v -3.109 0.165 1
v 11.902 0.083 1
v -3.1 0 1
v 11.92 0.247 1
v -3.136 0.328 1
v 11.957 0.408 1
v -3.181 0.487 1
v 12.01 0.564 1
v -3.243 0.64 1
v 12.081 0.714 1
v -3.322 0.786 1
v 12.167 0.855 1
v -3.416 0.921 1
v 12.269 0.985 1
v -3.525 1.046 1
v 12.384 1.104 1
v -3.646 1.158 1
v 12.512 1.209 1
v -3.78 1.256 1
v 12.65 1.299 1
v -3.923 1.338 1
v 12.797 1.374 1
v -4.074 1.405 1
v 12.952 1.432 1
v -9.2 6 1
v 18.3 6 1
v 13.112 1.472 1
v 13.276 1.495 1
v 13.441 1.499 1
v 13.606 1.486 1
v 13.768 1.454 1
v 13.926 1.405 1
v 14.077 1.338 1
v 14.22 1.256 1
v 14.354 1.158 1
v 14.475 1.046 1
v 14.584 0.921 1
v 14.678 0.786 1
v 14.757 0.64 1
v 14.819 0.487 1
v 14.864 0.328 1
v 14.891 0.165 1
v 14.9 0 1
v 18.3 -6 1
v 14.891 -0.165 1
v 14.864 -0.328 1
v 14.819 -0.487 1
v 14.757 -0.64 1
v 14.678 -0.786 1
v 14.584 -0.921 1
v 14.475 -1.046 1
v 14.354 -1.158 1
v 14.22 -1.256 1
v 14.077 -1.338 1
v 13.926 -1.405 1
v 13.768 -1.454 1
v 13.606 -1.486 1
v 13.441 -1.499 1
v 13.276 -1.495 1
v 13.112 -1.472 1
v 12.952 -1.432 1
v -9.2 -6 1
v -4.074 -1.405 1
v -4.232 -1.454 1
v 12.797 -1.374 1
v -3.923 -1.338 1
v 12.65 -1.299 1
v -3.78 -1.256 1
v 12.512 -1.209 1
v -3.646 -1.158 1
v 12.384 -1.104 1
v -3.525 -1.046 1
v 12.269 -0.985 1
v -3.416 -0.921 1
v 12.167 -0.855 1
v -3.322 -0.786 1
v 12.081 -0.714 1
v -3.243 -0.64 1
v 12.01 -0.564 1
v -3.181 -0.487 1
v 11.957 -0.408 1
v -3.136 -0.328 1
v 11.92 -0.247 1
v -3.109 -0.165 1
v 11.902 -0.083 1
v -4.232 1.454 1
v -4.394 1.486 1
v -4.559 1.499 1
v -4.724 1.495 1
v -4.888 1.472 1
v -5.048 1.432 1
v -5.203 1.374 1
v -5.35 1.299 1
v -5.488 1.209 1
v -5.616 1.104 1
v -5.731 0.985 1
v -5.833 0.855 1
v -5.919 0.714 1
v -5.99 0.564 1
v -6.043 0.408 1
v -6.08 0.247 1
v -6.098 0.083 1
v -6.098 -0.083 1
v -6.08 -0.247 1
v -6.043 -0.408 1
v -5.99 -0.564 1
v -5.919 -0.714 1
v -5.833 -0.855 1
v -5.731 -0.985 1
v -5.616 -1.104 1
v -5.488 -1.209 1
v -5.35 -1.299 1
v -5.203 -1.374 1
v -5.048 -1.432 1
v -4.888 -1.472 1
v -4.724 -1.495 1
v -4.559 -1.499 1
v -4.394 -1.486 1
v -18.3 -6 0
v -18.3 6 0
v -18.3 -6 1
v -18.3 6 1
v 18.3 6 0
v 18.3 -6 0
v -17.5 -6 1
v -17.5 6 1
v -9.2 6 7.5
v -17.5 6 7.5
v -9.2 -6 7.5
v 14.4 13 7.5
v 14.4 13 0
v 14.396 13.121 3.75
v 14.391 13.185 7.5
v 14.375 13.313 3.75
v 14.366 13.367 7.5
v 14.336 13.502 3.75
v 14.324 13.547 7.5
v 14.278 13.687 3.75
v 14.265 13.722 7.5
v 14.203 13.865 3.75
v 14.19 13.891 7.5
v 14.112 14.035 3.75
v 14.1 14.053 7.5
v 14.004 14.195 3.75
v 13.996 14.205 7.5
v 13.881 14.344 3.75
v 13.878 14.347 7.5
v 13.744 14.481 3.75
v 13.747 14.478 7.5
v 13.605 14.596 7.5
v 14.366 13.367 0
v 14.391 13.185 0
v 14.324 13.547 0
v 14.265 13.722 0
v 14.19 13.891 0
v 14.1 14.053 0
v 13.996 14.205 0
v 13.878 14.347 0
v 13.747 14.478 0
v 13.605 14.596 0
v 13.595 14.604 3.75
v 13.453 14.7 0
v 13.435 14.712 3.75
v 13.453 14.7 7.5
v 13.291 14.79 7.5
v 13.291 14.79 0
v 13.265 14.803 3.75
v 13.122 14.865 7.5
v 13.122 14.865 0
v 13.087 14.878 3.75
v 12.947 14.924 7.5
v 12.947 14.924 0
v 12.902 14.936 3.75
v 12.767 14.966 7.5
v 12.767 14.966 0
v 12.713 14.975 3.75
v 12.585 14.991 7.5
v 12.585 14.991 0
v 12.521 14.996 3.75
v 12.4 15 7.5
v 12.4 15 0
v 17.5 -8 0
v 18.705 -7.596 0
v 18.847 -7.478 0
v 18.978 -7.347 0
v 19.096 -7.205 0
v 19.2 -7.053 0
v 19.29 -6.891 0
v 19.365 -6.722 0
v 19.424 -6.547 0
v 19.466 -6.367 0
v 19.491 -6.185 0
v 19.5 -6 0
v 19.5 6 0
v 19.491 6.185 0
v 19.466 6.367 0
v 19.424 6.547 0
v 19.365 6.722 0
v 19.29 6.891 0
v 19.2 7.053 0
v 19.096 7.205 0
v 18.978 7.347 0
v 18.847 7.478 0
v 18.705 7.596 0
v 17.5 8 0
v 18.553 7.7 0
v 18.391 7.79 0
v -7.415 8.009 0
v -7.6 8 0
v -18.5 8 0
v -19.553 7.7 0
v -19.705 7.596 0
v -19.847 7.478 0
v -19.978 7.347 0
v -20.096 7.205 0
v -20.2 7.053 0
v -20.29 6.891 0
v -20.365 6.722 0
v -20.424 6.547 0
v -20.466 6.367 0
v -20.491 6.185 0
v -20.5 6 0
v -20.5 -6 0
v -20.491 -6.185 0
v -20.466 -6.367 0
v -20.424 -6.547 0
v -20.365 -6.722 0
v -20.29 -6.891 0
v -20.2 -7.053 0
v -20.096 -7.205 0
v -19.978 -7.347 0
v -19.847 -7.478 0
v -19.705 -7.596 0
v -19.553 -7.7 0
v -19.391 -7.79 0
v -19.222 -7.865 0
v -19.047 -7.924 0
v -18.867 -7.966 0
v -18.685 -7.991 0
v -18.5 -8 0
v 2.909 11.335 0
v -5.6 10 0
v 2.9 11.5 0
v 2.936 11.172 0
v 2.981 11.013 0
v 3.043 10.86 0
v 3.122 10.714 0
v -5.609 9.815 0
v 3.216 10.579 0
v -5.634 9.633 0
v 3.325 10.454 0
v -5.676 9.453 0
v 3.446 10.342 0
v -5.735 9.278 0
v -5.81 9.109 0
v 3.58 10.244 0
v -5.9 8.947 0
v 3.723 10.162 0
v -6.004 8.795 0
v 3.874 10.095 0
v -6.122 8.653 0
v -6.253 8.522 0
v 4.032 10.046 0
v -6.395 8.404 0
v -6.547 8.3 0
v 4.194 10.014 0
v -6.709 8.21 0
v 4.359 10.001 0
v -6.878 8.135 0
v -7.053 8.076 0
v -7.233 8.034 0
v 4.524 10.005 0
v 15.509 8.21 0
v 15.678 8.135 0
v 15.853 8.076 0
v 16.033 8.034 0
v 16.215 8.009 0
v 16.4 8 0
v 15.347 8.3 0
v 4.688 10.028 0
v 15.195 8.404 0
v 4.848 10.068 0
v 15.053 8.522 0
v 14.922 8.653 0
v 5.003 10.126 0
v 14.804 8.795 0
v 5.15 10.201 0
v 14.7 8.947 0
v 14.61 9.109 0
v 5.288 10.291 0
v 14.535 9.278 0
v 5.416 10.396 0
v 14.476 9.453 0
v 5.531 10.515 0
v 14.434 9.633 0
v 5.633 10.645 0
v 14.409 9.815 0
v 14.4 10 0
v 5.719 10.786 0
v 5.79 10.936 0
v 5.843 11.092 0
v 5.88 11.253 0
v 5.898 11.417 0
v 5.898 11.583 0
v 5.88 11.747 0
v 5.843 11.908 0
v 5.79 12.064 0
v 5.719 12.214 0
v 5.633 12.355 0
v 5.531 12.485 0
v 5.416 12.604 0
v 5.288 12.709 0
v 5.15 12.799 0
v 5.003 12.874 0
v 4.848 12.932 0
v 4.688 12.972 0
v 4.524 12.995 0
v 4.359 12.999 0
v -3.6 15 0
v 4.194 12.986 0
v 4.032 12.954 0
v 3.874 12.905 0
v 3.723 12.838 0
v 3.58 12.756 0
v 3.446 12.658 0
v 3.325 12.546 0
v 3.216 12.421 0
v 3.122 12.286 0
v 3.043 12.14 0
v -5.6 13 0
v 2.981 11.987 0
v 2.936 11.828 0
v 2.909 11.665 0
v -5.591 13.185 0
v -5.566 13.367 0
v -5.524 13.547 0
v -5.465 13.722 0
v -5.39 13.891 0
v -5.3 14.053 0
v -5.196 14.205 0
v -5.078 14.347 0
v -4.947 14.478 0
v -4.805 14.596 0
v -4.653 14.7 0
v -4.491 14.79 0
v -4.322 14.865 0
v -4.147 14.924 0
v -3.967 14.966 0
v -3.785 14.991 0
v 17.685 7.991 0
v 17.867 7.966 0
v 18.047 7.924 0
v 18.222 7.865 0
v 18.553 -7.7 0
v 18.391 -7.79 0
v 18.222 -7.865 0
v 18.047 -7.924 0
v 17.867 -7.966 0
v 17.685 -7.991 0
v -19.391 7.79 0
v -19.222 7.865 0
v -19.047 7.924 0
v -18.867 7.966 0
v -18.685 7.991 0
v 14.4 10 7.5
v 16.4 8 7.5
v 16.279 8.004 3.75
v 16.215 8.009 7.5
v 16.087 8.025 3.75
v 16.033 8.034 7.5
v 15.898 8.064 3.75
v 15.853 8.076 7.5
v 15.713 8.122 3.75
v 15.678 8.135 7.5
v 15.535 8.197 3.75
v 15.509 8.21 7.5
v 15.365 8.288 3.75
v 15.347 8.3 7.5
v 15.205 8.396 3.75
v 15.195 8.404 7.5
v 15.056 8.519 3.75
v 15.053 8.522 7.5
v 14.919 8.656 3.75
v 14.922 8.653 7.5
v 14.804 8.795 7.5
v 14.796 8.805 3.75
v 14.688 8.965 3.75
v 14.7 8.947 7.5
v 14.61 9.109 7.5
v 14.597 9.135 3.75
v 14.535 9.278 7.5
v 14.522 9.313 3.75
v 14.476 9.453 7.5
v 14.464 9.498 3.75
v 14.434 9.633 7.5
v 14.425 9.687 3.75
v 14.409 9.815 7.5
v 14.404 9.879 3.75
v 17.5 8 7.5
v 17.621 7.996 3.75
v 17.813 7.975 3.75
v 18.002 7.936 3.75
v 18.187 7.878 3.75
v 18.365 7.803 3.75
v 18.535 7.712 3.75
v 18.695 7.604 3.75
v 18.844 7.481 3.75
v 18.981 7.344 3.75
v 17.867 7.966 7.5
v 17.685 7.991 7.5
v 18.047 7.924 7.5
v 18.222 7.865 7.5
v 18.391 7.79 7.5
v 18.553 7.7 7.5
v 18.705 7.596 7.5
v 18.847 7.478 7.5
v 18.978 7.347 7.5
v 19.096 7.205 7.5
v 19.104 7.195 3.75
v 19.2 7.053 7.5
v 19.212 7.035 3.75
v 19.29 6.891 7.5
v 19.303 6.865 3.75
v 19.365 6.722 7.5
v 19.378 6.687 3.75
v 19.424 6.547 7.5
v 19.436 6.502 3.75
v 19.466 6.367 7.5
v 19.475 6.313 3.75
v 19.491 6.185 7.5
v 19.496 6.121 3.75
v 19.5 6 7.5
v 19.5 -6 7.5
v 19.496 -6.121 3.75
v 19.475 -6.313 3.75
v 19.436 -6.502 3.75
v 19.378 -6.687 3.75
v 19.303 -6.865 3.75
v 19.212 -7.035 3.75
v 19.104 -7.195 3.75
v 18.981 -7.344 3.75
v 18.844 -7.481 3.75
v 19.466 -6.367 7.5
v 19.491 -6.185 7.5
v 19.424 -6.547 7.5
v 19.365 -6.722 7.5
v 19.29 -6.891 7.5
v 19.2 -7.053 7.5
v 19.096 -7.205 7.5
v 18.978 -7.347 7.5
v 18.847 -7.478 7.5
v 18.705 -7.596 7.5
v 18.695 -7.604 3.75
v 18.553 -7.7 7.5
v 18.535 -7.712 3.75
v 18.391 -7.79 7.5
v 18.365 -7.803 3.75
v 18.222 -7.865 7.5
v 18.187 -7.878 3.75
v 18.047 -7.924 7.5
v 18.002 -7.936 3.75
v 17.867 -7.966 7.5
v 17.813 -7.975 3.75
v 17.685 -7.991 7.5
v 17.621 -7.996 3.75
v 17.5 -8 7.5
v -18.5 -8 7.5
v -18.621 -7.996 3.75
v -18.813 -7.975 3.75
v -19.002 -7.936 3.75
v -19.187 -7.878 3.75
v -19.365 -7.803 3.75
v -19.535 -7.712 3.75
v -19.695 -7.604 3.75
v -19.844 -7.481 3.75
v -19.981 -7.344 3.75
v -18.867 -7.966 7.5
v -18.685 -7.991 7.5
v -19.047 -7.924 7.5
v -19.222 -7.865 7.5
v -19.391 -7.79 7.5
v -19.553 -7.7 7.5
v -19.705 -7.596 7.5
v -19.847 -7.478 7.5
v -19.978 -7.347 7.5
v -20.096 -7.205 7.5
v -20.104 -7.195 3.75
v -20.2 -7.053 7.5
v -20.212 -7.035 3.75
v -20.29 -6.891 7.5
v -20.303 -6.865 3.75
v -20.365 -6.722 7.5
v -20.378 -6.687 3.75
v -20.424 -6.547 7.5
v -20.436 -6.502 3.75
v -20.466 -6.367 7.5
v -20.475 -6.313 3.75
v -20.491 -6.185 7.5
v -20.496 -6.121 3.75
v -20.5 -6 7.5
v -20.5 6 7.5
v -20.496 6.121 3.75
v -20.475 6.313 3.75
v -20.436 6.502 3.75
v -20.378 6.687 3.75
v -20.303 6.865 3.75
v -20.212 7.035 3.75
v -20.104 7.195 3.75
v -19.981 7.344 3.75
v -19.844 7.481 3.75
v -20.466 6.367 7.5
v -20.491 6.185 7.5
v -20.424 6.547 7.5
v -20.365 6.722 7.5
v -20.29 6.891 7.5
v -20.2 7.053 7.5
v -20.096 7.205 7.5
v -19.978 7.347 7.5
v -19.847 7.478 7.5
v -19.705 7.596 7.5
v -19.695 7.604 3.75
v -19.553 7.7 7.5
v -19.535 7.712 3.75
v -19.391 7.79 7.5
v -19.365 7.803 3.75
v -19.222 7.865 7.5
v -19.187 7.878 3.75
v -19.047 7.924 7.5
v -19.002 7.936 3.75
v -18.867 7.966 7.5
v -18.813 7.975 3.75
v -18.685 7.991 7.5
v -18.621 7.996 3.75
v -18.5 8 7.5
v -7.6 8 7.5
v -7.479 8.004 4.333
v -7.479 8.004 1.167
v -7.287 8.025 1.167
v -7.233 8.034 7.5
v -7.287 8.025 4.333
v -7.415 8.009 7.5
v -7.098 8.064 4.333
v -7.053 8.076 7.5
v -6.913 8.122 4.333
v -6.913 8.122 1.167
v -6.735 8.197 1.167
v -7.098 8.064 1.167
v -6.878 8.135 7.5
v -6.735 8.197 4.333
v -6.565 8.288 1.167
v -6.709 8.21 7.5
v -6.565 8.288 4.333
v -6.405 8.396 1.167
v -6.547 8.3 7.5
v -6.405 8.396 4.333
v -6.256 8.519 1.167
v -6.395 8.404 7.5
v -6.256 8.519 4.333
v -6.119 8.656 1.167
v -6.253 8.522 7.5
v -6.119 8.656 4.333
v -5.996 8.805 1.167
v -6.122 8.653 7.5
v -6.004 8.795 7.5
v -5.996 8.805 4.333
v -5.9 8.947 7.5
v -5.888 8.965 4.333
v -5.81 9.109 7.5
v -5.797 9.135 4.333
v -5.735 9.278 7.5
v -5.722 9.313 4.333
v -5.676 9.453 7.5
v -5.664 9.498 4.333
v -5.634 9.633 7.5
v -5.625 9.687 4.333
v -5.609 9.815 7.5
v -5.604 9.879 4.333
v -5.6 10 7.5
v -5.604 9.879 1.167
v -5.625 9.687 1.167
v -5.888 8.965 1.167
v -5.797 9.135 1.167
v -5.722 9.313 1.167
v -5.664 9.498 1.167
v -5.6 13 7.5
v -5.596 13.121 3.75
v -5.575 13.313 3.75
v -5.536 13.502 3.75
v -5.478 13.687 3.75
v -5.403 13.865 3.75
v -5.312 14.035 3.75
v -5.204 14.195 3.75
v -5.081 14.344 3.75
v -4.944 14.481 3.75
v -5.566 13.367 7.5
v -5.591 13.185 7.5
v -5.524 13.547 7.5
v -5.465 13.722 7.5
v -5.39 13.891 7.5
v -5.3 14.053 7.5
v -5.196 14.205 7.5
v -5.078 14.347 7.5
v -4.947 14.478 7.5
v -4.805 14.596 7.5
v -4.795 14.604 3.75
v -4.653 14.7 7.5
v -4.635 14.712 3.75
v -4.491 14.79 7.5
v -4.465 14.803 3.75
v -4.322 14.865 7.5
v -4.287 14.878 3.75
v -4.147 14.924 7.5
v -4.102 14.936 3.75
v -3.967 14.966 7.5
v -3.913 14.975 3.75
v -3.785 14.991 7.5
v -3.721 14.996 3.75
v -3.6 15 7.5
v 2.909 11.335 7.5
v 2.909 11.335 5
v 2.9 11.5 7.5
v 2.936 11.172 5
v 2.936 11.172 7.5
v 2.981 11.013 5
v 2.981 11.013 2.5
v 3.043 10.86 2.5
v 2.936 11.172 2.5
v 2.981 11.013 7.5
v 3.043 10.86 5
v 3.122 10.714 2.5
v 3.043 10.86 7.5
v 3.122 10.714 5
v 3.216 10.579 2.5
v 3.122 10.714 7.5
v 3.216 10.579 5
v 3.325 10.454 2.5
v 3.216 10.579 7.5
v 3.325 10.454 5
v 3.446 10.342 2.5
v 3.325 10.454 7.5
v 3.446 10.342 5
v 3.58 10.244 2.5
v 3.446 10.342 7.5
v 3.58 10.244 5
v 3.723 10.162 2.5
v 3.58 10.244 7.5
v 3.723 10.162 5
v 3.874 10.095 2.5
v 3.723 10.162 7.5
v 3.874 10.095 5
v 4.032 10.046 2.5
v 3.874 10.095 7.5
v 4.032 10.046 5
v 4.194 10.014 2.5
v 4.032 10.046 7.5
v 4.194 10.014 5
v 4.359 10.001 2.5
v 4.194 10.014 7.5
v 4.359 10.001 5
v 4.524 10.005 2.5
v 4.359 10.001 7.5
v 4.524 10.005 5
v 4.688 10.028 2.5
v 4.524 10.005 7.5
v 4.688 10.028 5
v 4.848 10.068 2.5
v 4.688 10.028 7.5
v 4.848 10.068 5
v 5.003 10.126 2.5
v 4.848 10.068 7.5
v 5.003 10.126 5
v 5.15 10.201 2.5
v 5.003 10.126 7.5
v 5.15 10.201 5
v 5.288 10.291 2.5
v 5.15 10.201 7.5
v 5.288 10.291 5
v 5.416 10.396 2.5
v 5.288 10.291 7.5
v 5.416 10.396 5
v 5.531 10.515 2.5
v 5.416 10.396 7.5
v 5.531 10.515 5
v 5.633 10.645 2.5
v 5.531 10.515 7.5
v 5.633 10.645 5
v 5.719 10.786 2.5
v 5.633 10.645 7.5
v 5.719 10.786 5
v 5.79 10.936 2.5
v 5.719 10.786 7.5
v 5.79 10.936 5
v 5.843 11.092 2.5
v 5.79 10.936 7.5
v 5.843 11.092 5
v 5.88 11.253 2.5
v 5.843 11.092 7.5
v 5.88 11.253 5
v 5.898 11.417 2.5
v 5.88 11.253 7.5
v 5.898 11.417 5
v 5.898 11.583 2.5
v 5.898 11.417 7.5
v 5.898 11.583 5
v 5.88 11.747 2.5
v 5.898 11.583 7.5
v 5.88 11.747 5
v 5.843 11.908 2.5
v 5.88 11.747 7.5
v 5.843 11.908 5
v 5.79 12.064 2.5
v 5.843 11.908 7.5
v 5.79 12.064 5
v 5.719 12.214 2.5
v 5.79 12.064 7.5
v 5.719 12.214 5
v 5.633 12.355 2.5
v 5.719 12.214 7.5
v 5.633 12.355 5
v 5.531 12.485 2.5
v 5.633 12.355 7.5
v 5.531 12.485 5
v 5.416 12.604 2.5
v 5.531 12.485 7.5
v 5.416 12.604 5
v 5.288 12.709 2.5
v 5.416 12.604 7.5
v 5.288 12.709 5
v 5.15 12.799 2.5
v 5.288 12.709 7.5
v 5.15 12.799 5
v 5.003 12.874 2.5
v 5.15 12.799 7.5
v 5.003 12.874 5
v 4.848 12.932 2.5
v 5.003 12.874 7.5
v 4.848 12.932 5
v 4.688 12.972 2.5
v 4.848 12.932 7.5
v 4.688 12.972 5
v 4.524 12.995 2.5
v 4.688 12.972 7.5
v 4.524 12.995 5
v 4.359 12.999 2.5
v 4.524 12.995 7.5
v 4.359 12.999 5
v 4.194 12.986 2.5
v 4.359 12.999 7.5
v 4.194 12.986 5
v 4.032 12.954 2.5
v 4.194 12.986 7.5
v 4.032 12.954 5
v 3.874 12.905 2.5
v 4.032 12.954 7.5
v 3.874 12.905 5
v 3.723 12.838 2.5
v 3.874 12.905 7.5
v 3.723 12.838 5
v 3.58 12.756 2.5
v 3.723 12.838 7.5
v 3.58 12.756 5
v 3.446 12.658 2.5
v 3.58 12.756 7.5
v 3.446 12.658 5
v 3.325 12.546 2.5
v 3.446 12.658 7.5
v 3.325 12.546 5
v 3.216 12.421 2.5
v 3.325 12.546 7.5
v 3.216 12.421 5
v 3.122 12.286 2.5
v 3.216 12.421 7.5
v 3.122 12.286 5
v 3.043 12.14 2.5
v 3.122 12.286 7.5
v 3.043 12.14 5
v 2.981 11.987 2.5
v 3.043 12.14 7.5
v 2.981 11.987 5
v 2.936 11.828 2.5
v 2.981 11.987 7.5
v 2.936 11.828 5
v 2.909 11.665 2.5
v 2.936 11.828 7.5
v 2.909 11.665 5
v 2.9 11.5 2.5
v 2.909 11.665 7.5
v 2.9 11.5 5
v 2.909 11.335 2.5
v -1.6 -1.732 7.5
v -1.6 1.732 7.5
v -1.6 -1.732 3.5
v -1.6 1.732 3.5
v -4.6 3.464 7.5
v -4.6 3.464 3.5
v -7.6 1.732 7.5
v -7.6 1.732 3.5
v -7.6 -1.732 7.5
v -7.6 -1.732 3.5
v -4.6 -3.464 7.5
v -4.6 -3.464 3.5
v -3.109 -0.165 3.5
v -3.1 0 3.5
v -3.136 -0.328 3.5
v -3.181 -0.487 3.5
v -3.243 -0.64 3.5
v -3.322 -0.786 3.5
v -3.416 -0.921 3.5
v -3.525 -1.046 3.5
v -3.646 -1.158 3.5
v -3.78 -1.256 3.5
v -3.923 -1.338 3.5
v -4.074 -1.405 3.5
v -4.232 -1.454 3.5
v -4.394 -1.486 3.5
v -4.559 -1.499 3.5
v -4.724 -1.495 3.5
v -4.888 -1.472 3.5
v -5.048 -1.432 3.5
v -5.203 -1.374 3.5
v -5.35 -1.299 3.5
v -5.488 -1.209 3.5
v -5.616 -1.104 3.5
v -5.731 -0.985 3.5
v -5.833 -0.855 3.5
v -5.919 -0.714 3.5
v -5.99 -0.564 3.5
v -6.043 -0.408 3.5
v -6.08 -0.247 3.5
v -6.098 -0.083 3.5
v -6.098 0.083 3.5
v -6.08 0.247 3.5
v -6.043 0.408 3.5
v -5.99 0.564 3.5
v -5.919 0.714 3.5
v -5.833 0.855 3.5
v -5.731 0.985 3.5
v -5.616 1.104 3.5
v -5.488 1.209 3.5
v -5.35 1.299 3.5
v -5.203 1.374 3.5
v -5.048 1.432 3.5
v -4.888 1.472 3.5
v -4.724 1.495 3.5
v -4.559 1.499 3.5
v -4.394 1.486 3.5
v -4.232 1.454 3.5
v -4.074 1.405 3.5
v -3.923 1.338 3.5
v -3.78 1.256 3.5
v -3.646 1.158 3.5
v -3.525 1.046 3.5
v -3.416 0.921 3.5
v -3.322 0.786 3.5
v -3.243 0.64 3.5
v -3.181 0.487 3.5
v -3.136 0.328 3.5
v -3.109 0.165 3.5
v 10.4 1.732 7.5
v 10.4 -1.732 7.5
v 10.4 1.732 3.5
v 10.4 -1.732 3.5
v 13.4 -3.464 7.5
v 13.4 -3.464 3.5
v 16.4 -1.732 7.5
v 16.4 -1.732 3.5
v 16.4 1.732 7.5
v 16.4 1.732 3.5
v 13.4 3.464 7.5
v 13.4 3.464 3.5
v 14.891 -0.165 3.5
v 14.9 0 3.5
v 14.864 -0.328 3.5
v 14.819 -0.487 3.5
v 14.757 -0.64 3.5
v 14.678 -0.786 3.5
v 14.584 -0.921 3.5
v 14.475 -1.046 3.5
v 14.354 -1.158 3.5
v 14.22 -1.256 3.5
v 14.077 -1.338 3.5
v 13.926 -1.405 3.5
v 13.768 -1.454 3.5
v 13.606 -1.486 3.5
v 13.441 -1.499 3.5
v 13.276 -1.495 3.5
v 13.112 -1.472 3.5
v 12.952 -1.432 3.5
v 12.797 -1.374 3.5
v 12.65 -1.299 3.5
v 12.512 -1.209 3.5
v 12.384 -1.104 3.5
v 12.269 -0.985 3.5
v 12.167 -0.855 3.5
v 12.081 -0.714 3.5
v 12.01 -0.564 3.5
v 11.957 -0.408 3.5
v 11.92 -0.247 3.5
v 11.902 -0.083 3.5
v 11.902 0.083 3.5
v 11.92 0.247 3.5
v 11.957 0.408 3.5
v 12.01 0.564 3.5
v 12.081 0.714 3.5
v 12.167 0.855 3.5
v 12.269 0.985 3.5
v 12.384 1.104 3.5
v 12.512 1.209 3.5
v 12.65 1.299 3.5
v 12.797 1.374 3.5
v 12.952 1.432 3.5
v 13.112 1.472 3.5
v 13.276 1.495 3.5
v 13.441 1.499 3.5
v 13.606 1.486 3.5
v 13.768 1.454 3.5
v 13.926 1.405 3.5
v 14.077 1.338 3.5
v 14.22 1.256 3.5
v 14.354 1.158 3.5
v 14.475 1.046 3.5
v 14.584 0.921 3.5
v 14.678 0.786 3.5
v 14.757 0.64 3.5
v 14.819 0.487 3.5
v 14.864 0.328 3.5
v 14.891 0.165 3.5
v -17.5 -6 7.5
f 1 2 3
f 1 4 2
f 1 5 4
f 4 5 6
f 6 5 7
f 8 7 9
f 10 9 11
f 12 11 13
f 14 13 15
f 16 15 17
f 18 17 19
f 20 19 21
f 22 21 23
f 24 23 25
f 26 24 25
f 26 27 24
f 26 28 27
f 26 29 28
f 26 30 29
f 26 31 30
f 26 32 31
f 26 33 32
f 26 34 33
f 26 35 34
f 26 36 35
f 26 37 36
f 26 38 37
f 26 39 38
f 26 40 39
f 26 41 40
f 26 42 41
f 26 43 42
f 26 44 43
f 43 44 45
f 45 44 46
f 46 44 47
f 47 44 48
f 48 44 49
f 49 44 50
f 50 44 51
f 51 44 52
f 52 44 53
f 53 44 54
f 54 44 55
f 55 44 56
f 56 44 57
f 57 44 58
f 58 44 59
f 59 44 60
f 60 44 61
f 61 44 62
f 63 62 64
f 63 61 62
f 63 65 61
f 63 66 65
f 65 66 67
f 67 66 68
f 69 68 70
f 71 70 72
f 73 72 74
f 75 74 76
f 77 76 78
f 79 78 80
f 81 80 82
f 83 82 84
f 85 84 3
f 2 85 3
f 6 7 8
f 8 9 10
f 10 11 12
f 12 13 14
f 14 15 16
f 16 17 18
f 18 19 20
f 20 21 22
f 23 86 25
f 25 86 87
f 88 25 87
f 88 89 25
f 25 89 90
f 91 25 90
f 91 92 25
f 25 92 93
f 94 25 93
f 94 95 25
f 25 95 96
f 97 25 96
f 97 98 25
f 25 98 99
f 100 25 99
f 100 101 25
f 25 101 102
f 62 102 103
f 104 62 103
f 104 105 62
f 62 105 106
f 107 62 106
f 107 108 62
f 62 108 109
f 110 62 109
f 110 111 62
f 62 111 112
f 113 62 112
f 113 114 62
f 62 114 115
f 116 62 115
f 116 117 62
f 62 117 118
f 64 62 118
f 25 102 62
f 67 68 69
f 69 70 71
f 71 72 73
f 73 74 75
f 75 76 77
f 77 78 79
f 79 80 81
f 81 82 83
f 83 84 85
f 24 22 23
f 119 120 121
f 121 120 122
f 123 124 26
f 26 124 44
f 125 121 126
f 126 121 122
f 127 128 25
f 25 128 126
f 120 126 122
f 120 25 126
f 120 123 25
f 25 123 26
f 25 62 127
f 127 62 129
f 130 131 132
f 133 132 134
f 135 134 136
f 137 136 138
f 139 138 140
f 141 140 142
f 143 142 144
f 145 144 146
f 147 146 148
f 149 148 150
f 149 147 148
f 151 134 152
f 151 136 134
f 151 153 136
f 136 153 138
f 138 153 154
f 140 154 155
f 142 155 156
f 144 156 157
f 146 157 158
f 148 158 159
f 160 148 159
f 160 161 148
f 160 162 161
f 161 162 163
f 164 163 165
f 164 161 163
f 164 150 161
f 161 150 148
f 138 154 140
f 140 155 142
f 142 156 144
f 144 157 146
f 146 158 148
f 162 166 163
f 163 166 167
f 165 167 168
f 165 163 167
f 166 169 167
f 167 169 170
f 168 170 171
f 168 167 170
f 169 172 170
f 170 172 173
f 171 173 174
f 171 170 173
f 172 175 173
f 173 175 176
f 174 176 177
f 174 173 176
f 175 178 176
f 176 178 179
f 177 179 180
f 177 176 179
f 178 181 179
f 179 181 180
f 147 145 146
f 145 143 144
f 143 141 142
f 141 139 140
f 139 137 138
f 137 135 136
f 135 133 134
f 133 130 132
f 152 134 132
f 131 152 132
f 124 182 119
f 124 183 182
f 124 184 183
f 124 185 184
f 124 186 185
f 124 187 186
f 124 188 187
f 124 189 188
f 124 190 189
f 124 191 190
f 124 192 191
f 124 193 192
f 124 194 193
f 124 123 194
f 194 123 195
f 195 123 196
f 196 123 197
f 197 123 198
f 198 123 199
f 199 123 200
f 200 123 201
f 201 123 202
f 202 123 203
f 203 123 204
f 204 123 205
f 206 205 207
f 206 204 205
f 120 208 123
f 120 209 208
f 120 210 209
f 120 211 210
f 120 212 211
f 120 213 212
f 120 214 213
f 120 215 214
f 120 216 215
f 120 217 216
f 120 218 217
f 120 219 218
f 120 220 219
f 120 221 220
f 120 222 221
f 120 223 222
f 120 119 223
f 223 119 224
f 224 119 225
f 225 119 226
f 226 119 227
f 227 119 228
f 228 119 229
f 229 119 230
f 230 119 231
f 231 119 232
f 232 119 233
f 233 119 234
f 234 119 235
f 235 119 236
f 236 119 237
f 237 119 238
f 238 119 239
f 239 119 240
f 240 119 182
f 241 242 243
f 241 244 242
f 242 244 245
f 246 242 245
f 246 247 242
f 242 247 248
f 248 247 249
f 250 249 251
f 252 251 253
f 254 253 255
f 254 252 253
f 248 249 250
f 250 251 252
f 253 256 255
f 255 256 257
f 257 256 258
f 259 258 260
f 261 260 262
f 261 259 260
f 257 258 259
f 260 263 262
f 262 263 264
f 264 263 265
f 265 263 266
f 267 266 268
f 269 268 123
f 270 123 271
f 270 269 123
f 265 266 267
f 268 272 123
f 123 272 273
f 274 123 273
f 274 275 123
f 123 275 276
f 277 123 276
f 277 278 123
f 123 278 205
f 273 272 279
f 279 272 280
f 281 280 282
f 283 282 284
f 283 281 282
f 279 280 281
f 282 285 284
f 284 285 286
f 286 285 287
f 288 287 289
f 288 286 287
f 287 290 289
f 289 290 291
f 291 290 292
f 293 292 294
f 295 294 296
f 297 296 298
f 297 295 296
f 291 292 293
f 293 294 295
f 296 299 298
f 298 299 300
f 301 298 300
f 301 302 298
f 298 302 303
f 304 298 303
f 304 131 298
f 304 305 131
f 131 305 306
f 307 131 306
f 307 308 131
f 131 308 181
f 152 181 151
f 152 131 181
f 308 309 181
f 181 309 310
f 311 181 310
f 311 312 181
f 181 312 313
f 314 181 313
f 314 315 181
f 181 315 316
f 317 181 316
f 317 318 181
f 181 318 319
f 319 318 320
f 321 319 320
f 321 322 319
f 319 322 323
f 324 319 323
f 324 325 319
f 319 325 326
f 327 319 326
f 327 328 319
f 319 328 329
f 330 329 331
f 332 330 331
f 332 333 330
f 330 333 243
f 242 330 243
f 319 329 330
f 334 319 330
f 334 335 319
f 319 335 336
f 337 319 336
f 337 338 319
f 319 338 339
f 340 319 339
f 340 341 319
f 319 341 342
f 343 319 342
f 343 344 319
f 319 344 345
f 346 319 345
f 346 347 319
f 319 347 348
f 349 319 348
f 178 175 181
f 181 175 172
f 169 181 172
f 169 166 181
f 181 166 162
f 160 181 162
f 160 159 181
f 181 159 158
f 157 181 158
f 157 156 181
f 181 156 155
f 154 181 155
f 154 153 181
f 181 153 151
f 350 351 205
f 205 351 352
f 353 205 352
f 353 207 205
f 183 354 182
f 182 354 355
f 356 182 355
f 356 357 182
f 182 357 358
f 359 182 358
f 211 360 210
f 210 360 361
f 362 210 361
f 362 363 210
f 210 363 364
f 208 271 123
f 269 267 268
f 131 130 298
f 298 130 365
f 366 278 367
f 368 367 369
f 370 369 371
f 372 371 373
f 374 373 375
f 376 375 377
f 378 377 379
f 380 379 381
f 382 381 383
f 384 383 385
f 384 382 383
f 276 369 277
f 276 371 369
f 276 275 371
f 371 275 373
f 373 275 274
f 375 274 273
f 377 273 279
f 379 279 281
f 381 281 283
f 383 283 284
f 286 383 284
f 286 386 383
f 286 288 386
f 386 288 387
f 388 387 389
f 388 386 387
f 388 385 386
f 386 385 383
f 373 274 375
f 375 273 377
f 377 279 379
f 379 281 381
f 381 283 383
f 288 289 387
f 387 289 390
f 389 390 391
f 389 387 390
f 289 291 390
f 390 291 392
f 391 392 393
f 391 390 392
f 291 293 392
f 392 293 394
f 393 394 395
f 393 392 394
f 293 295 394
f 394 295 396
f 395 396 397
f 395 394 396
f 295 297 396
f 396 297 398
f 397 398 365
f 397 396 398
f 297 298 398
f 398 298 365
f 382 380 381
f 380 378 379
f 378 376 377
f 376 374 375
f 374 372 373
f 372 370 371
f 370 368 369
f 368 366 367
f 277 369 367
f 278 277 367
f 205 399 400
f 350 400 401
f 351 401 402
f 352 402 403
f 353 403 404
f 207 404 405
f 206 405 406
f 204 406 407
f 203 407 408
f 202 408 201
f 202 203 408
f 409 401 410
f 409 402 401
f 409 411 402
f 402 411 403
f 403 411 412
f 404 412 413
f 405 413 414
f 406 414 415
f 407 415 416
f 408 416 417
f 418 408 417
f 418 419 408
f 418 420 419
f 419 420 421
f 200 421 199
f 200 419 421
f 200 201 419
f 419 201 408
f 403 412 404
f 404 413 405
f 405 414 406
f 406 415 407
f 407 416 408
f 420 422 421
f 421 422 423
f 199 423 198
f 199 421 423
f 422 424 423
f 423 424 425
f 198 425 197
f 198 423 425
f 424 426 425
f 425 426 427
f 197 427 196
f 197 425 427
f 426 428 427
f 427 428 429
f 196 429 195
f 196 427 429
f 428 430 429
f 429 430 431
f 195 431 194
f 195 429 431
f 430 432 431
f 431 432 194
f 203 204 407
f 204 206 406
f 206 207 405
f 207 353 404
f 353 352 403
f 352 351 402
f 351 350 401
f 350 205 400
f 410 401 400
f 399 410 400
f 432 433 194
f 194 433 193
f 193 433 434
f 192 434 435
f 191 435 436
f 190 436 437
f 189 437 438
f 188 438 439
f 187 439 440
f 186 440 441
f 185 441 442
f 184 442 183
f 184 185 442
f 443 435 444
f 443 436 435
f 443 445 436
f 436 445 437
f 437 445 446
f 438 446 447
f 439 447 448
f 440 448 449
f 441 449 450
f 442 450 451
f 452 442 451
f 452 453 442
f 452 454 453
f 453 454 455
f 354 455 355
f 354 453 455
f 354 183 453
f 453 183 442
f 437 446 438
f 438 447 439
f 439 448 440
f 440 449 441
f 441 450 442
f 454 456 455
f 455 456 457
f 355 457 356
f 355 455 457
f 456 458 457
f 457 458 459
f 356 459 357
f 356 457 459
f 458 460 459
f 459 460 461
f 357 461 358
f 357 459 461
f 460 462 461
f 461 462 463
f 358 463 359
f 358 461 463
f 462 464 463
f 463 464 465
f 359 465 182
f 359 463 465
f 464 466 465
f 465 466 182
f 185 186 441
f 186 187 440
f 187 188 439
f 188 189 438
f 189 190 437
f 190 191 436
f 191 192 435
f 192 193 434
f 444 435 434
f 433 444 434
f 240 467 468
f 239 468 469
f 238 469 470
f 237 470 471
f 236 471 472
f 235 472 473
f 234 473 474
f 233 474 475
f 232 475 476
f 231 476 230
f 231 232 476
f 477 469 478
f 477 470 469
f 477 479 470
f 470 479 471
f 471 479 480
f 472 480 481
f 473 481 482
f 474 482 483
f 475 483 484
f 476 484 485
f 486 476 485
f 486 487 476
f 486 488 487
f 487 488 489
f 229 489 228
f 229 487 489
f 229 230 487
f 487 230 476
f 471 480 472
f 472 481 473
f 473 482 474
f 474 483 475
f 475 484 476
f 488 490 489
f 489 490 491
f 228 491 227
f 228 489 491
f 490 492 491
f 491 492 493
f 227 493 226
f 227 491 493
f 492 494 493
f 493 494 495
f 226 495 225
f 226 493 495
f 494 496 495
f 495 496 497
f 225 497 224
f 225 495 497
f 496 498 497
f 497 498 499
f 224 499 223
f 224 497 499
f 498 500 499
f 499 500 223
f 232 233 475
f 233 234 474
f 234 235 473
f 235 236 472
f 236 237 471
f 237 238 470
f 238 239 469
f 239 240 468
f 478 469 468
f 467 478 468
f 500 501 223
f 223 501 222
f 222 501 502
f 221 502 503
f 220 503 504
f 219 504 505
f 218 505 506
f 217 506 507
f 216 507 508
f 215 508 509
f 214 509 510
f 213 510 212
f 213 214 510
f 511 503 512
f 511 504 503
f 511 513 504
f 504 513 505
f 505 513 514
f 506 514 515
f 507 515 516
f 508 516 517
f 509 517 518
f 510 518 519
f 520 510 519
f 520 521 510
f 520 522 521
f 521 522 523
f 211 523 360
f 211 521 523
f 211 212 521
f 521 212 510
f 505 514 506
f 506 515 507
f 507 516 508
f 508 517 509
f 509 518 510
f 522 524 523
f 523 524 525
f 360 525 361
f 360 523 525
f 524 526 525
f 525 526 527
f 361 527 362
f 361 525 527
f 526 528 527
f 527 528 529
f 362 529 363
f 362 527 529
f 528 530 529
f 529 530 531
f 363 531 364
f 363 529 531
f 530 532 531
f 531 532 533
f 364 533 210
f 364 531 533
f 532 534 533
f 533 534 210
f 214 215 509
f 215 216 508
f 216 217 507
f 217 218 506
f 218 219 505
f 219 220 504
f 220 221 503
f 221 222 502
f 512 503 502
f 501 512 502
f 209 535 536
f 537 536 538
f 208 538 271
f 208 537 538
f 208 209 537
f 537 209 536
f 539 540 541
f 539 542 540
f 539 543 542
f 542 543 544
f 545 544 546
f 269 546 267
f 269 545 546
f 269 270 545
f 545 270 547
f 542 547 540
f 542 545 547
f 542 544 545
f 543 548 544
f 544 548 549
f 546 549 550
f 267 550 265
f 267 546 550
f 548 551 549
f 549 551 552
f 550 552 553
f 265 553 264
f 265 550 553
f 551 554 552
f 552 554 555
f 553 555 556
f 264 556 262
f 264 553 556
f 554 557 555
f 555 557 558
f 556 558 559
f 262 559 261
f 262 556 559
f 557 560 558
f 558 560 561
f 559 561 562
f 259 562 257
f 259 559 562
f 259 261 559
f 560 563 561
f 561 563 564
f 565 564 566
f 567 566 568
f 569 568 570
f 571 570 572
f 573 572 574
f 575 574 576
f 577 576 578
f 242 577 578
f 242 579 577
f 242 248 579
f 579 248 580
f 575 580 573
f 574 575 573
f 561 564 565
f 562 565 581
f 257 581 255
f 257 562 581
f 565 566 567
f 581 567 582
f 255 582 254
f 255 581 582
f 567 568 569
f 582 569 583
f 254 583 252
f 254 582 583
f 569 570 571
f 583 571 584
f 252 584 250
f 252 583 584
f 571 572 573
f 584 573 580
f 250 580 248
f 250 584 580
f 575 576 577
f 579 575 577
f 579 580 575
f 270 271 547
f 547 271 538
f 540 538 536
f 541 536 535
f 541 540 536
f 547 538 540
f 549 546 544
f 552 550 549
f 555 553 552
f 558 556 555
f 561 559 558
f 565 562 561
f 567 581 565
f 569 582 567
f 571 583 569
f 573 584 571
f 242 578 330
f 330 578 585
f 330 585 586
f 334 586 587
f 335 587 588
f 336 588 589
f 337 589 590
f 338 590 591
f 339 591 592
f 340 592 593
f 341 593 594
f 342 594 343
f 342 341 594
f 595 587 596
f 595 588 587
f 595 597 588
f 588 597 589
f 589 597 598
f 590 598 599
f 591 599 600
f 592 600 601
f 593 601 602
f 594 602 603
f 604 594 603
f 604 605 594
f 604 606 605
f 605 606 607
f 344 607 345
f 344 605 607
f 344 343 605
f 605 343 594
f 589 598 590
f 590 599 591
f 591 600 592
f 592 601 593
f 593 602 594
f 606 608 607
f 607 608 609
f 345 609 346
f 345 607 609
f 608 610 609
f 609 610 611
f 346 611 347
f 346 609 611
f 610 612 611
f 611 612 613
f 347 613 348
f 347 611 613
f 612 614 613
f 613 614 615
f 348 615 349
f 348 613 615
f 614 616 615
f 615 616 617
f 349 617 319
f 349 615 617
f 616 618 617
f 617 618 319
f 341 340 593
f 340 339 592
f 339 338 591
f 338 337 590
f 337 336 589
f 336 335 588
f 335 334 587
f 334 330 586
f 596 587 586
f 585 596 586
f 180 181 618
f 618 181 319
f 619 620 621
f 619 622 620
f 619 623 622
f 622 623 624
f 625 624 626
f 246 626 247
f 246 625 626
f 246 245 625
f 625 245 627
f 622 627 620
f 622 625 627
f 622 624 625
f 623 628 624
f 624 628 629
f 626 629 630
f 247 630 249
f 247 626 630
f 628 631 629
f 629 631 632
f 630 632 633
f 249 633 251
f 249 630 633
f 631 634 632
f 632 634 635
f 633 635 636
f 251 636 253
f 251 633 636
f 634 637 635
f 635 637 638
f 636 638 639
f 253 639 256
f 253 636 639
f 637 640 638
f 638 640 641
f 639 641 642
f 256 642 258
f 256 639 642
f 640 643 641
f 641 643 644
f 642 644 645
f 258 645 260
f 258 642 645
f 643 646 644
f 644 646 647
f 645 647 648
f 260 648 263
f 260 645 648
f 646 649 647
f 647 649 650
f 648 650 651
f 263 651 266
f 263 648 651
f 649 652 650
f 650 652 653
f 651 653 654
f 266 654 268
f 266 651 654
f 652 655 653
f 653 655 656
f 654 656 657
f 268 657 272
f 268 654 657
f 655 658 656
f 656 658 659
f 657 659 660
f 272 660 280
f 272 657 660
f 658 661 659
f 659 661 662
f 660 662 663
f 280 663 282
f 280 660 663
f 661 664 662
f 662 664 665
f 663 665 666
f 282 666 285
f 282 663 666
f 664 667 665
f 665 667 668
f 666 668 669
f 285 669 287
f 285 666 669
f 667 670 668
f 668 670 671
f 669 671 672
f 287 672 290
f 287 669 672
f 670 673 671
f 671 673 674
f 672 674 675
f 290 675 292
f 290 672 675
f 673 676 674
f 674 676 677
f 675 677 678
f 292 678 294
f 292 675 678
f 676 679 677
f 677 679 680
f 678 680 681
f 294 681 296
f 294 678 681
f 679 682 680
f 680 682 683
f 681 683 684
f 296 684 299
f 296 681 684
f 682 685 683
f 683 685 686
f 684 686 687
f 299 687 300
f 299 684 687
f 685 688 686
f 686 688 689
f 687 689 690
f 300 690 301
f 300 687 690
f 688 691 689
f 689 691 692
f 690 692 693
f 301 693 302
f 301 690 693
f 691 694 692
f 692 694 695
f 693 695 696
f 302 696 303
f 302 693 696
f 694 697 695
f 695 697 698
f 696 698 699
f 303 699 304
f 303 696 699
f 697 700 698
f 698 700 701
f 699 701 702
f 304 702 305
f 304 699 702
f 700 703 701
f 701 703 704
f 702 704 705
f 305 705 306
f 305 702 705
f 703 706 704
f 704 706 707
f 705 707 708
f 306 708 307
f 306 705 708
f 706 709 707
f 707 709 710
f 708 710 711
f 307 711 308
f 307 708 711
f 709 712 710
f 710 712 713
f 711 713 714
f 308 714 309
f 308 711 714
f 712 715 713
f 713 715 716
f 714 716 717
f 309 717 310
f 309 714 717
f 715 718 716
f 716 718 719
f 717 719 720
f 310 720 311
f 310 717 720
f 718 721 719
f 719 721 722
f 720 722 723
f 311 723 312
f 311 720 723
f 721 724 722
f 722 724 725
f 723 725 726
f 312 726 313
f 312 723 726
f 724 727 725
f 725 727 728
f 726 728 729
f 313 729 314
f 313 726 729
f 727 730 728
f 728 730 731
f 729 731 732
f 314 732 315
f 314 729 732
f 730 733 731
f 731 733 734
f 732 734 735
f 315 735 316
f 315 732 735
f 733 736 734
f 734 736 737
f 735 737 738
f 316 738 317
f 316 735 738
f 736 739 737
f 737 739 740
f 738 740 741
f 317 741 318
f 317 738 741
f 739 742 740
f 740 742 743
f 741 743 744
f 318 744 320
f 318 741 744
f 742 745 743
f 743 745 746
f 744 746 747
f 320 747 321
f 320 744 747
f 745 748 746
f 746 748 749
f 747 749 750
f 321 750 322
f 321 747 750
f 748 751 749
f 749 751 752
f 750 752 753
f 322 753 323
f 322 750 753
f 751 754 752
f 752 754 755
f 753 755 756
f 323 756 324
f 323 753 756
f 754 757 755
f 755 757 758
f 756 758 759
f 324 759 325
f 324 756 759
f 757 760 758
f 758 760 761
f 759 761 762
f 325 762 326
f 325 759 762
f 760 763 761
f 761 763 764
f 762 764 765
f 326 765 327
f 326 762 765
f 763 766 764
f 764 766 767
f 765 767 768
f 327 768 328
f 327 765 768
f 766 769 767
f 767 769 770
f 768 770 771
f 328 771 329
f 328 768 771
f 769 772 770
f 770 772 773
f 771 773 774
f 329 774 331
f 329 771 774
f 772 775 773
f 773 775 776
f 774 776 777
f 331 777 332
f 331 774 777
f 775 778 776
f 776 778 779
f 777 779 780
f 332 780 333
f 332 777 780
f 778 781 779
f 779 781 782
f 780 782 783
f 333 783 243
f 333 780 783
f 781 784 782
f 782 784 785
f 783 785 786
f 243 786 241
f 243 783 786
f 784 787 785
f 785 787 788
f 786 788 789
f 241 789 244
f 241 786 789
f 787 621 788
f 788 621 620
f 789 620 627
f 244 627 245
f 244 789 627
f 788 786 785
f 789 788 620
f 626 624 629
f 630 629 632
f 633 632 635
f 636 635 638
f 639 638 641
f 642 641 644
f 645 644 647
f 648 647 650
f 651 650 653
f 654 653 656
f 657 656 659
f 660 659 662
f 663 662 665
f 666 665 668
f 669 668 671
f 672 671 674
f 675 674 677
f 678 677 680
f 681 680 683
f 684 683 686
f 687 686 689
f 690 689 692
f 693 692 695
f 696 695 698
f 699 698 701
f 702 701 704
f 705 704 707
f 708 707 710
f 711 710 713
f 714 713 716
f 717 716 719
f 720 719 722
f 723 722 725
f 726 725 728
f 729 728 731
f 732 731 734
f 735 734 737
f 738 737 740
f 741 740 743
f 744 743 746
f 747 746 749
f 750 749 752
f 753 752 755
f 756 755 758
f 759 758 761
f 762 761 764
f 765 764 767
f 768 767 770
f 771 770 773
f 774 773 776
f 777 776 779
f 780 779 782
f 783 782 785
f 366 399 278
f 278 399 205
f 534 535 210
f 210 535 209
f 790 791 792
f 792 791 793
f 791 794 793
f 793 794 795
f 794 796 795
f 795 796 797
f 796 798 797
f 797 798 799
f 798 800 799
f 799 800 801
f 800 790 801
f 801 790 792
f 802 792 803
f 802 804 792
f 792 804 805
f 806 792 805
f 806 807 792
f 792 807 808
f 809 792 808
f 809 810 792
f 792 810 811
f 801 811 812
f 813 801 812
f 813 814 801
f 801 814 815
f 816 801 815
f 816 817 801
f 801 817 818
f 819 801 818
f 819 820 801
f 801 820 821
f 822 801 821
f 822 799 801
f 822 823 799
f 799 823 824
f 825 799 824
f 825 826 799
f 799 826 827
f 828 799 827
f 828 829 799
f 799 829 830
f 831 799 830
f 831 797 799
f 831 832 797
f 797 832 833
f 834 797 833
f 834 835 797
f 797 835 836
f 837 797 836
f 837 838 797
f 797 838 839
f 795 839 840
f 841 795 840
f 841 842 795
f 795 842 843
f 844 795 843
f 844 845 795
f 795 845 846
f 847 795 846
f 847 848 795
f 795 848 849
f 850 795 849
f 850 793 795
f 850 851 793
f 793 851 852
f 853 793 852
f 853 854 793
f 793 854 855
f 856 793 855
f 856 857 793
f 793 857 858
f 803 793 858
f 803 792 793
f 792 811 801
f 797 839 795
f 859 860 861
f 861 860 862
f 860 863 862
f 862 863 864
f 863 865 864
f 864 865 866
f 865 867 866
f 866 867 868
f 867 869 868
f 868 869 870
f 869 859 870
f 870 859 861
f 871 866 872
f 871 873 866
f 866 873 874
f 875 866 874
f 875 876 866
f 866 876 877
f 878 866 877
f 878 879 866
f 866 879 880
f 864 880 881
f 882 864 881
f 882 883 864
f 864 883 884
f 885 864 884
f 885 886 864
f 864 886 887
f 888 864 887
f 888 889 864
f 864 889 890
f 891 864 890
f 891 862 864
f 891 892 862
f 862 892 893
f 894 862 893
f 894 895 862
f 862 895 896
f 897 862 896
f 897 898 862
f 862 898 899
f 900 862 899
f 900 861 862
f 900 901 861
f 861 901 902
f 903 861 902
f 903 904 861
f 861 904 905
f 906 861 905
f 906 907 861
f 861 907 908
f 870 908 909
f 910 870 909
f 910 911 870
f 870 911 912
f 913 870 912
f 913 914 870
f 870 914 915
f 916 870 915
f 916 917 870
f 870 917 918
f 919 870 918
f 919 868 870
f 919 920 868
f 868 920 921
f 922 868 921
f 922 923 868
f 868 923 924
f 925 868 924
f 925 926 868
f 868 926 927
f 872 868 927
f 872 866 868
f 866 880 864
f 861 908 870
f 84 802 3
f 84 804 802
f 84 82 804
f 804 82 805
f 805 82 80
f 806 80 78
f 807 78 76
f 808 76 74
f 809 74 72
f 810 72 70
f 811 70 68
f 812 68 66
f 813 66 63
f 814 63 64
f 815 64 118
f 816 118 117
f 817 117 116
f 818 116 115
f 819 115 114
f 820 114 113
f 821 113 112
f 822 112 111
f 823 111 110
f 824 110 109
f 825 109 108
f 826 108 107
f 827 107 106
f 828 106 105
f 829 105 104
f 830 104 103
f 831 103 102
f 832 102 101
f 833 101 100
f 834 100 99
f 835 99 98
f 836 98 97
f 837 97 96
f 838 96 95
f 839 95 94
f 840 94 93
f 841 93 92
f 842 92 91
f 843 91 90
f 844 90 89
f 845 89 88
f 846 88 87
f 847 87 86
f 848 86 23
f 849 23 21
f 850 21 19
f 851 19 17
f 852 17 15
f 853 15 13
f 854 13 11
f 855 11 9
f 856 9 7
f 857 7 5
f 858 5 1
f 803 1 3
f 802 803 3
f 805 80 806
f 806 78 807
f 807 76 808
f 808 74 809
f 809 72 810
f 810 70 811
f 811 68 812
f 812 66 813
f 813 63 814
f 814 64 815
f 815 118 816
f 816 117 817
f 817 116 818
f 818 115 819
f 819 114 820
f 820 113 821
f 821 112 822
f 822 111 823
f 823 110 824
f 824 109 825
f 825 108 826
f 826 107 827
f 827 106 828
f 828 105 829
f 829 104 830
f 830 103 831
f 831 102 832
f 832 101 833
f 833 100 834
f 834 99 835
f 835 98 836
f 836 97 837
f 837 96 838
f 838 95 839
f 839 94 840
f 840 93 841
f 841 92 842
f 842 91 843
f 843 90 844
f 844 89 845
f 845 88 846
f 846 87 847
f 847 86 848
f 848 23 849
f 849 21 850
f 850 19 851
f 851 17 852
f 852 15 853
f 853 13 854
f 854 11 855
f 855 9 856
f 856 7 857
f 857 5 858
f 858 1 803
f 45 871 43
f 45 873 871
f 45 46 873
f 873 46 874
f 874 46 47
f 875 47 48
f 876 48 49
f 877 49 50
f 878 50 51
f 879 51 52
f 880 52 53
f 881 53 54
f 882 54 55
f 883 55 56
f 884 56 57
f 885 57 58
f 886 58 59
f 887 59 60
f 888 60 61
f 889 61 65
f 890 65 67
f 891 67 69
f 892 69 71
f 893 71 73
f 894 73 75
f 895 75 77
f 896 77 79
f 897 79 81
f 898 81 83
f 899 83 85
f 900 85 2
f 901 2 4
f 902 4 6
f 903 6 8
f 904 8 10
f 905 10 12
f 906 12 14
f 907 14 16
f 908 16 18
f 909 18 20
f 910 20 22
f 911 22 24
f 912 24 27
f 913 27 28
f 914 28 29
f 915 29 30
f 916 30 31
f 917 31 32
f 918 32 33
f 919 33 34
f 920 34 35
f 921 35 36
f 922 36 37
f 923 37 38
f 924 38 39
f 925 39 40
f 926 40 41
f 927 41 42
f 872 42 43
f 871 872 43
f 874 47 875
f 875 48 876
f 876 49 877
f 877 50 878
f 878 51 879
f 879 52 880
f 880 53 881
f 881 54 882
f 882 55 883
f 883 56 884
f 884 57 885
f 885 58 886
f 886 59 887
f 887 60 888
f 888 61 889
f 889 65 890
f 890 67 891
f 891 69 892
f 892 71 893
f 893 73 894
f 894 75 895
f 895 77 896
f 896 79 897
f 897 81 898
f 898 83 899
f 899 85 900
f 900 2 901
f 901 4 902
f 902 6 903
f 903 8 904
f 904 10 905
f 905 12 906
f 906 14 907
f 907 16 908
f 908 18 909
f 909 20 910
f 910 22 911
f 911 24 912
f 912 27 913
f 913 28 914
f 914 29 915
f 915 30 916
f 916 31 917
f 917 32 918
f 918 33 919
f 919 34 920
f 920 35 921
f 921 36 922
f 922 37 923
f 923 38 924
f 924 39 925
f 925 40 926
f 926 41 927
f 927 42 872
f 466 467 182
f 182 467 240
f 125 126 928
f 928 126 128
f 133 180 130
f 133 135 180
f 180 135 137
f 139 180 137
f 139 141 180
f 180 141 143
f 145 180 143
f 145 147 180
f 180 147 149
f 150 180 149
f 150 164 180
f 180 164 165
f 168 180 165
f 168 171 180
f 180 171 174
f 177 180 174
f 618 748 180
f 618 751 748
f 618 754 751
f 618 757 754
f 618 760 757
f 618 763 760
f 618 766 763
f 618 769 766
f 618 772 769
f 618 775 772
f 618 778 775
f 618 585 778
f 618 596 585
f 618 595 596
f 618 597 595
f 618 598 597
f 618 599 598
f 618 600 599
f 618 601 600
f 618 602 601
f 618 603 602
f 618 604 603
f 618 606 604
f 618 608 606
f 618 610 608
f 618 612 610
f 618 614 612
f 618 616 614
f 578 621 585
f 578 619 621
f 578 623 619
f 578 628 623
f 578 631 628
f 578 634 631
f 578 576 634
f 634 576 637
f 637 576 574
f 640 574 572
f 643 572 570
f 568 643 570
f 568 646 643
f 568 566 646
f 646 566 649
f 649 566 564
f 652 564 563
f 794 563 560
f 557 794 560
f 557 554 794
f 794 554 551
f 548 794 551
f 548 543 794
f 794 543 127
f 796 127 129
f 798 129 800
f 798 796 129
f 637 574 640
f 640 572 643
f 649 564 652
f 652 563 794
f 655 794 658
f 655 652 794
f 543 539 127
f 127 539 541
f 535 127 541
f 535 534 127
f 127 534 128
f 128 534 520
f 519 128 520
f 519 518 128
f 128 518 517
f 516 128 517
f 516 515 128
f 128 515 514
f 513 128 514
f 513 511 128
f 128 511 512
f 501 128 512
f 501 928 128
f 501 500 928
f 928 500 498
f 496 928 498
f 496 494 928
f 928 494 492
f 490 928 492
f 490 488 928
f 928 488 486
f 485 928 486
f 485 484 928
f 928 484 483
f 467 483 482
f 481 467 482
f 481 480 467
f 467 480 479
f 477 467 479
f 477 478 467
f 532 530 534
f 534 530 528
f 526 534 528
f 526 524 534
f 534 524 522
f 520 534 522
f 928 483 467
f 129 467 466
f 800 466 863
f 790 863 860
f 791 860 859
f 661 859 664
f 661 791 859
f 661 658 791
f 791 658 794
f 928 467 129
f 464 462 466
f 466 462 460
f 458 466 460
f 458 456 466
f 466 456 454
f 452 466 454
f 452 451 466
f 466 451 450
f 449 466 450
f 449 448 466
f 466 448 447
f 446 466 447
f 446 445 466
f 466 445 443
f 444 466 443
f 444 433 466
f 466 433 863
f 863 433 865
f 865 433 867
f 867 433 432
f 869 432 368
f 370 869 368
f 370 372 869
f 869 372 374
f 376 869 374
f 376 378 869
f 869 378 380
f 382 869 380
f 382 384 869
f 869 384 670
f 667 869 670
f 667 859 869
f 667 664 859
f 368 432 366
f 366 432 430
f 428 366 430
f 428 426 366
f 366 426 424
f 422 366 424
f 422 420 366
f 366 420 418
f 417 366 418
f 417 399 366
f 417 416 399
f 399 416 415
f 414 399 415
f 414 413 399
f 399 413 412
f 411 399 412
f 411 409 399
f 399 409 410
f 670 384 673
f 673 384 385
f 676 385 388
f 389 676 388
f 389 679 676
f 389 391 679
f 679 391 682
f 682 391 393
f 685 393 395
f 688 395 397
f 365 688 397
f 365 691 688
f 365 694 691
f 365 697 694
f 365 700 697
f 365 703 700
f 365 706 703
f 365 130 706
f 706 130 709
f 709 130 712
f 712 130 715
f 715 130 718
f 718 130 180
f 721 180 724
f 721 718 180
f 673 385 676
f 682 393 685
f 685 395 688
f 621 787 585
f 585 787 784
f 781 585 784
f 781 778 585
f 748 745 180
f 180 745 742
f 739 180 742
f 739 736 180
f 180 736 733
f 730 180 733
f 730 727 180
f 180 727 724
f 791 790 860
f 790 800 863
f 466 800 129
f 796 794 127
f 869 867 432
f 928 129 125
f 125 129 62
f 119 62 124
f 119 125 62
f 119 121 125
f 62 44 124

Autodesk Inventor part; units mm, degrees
ref_plane "YZ Plane" through (0, 0, 0) normal (1, 0, 0) x (0, 1, 0)
ref_plane "XZ Plane" through (0, 0, 0) normal (0, 1, 0) x (-1, 0, 0)
ref_plane "XY Plane" through (0, 0, 0) normal (0, 0, 1) x (1, 0, 0)
sketch "Sketch1" plane through (0, 0, 0) normal (0, 0, 1) x (1, 0, 0)
  line L0 (-10.2, 5) -> (-10.2, -5) projected
  line L1 (-10.2, -5) -> (16.5, -5) projected
  line L2 (16.5, -5) -> (16.5, 5) projected
  line L3 (16.5, 5) -> (-10.2, 5) projected
  circle A0 centre (13.4, 0) radius 1.5 projected
  circle A1 centre (-4.6, 0) radius 1.5 projected
  line L4 (-16.5, 5) -> (-16.5, -5) projected
  line L5 (-20.5, 8) -> (19.5, 8)
  line L6 (19.5, 8) -> (19.5, -8)
  line L7 (19.5, -8) -> (-20.5, -8)
  line L8 (-20.5, -8) -> (-20.5, 8)
  line L9 (-9.2, 8) -> (-9.2, -8)
  line L10 (-17.5, 8) -> (-17.5, -8)
  line L11 (-17.5, 6) -> (-9.2, 6)
  line L12 (-17.5, -6) -> (-9.2, -6)
  point P0 (0, 0)
  dimension "d0" = 3
  dimension "d1" = 3
  dimension "d2" = 3
  dimension "d3" = 4
  dimension "d4" = 1
  dimension "d5" = 1
  dimension "d6" = 1
  dimension "d7" = 1
extrude "Extrusion1" add sketch "Sketch1" along normal blind 7.5 contours L9 L5 L6 L7 L1 L2 L3 | L3 L2 L1 L9 | L11 L10 L5 L9 | L9 L7 L10 L12 | L10 L7 L8 L5
sketch "Sketch2" plane through (0, 0, 7.5) normal (0, 0, 1) x (1, 0, 0)
  circle A0 centre (-4.6, 0) radius 1.5 projected
  circle A1 centre (13.4, 0) radius 1.5 projected
  line L0 (-1.6, -1.7321) -> (-4.6, -3.4641)
  line L1 (-4.6, -3.4641) -> (-7.6, -1.7321)
  line L2 (-7.6, -1.7321) -> (-7.6, 1.7321)
  line L3 (-7.6, 1.7321) -> (-4.6, 3.4641)
  line L4 (-4.6, 3.4641) -> (-1.6, 1.7321)
  line L5 (-1.6, 1.7321) -> (-1.6, -1.7321)
  circle A2 centre (13.4, 0) radius 1.5 projected
  line L6 (10.4, 1.7321) -> (13.4, 3.4641)
  line L7 (13.4, 3.4641) -> (16.4, 1.7321)
  line L8 (16.4, 1.7321) -> (16.4, -1.7321)
  line L9 (16.4, -1.7321) -> (13.4, -3.4641)
  line L10 (13.4, -3.4641) -> (10.4, -1.7321)
  line L11 (10.4, -1.7321) -> (10.4, 1.7321)
  point P0 (0, 0)
  dimension "d10" = 6
  dimension "d11" = 6
extrude "Extrusion2" cut sketch "Sketch2" against normal blind 4
sketch "Sketch3" plane through (-20.5, 8, 0) normal (0, 1, 0) x (1, 0, 0)
  line L0 (40, 0) -> (0, 0) projected
  line L1 (0, -7.5) -> (40, -7.5) projected
  line L2 (34.9, 0) -> (14.9, 0)
  line L3 (14.9, 0) -> (14.9, -7.5)
  line L4 (14.9, -7.5) -> (34.9, -7.5)
  line L5 (34.9, -7.5) -> (34.9, 0)
  line L6 (13.1, 5) -> (13.1, 2) projected
  line L7 (13.1, 2) -> (36.7, 2) projected
  line L8 (36.7, 2) -> (36.7, 5) projected
  line L9 (36.7, 5) -> (30.7, 5) projected
  line L10 (30.7, 5) -> (30.7, 13) projected
  line L11 (30.7, 13) -> (26.3, 13) projected
  line L12 (26.3, 13) -> (26.3, 5) projected
  line L13 (26.3, 5) -> (23.5, 5) projected
  line L14 (23.5, 5) -> (23.5, 13) projected
  line L15 (23.5, 13) -> (19.1, 13) projected
  line L16 (19.1, 13) -> (19.1, 5) projected
  line L17 (19.1, 5) -> (13.1, 5) projected
  line L18 (24.9, 15.273) -> (24.9, -16.6011) construction
  point P0 (20.5, 0)
  dimension "d14" = 20
  dimension "d15" = 2.8
  dimension "d16" = 1.4
  dimension "d17" = 10
extrude "Extrusion3" add sketch "Sketch3" along normal blind 7 contours L5 L1 L3 L0
sketch "Sketch4" plane through (0, 0, 0) normal (0, 0, -1) x (-1, 0, 0)
  circle A0 centre (-4.4, 11.5) radius 1.5
  line L0 (-19.5, 8) -> (-14.4, 8) projected
  line L1 (-19.5, -8) -> (-19.5, 8) projected
  line L2 (20.5, -8) -> (-19.5, -8) projected
  line L3 (20.5, 8) -> (20.5, -8) projected
  line L4 (5.6, 8) -> (20.5, 8) projected
  line L5 (5.6, 8) -> (5.6, 15) projected
  line L6 (-14.4, 15) -> (5.6, 15) projected
  line L7 (-14.4, 8) -> (-14.4, 15) projected
  circle A1 centre (4.6, 0) radius 1.5 projected
  circle A2 centre (-13.4, 0) radius 1.5 projected
  line L8 (17.5, -6) -> (17.5, 6) projected
  line L9 (9.2, -6) -> (17.5, -6) projected
  line L10 (9.2, 6) -> (9.2, -6) projected
  line L11 (17.5, 6) -> (9.2, 6) projected
  point P0 (0, 0)
  dimension "d20" = 3
  dimension "d21" = 20
  dimension "d22" = 7
  dimension "d23" = 3.5
  dimension "d24" = 10
extrude "Extrusion4" cut sketch "Sketch4" against normal through all contours A0
fillet "Fillet1" radius 2 8 edges at (-5.6, 15, 3.75) (-5.6, 8, 3.75) (-20.5, 8, 3.75) (-20.5, -8, 3.75) (19.5, -8, 3.75) (19.5, 8, 3.75) (14.4, 8, 3.75) (14.4, 15, 3.75)
sketch "Sketch5" plane through (0, 0, 0) normal (0, 0, -1) x (-1, 0, 0)
  line L0 (18.3, -6) -> (-18.3, -6)
  line L1 (-18.3, -6) -> (-18.3, 6)
  line L2 (-18.3, 6) -> (18.3, 6)
  line L3 (18.3, 6) -> (18.3, -6)
  point P0 (0, 0)
  dimension "d28" = 12
  dimension "d29" = 36.6
  dimension "d30" = 18.3
  dimension "d31" = 6
extrude "Extrusion5" cut sketch "Sketch5" against normal blind 1
equation "\"d1\" = d0"
equation "\"d2\" = d0"
equation "\"d11\" = d10"
equation "\"d16\" = 0.5 * d15"
equation "\"d17\" = 0.5 * d14"
equation "\"d23\" = 0.5 * d22"
equation "\"d24\" = 0.5 * d21"
equation "\"d30\" = 0.5 * d29"
equation "\"d31\" = 0.5 * d28"
properties part number "optical endstop base"
